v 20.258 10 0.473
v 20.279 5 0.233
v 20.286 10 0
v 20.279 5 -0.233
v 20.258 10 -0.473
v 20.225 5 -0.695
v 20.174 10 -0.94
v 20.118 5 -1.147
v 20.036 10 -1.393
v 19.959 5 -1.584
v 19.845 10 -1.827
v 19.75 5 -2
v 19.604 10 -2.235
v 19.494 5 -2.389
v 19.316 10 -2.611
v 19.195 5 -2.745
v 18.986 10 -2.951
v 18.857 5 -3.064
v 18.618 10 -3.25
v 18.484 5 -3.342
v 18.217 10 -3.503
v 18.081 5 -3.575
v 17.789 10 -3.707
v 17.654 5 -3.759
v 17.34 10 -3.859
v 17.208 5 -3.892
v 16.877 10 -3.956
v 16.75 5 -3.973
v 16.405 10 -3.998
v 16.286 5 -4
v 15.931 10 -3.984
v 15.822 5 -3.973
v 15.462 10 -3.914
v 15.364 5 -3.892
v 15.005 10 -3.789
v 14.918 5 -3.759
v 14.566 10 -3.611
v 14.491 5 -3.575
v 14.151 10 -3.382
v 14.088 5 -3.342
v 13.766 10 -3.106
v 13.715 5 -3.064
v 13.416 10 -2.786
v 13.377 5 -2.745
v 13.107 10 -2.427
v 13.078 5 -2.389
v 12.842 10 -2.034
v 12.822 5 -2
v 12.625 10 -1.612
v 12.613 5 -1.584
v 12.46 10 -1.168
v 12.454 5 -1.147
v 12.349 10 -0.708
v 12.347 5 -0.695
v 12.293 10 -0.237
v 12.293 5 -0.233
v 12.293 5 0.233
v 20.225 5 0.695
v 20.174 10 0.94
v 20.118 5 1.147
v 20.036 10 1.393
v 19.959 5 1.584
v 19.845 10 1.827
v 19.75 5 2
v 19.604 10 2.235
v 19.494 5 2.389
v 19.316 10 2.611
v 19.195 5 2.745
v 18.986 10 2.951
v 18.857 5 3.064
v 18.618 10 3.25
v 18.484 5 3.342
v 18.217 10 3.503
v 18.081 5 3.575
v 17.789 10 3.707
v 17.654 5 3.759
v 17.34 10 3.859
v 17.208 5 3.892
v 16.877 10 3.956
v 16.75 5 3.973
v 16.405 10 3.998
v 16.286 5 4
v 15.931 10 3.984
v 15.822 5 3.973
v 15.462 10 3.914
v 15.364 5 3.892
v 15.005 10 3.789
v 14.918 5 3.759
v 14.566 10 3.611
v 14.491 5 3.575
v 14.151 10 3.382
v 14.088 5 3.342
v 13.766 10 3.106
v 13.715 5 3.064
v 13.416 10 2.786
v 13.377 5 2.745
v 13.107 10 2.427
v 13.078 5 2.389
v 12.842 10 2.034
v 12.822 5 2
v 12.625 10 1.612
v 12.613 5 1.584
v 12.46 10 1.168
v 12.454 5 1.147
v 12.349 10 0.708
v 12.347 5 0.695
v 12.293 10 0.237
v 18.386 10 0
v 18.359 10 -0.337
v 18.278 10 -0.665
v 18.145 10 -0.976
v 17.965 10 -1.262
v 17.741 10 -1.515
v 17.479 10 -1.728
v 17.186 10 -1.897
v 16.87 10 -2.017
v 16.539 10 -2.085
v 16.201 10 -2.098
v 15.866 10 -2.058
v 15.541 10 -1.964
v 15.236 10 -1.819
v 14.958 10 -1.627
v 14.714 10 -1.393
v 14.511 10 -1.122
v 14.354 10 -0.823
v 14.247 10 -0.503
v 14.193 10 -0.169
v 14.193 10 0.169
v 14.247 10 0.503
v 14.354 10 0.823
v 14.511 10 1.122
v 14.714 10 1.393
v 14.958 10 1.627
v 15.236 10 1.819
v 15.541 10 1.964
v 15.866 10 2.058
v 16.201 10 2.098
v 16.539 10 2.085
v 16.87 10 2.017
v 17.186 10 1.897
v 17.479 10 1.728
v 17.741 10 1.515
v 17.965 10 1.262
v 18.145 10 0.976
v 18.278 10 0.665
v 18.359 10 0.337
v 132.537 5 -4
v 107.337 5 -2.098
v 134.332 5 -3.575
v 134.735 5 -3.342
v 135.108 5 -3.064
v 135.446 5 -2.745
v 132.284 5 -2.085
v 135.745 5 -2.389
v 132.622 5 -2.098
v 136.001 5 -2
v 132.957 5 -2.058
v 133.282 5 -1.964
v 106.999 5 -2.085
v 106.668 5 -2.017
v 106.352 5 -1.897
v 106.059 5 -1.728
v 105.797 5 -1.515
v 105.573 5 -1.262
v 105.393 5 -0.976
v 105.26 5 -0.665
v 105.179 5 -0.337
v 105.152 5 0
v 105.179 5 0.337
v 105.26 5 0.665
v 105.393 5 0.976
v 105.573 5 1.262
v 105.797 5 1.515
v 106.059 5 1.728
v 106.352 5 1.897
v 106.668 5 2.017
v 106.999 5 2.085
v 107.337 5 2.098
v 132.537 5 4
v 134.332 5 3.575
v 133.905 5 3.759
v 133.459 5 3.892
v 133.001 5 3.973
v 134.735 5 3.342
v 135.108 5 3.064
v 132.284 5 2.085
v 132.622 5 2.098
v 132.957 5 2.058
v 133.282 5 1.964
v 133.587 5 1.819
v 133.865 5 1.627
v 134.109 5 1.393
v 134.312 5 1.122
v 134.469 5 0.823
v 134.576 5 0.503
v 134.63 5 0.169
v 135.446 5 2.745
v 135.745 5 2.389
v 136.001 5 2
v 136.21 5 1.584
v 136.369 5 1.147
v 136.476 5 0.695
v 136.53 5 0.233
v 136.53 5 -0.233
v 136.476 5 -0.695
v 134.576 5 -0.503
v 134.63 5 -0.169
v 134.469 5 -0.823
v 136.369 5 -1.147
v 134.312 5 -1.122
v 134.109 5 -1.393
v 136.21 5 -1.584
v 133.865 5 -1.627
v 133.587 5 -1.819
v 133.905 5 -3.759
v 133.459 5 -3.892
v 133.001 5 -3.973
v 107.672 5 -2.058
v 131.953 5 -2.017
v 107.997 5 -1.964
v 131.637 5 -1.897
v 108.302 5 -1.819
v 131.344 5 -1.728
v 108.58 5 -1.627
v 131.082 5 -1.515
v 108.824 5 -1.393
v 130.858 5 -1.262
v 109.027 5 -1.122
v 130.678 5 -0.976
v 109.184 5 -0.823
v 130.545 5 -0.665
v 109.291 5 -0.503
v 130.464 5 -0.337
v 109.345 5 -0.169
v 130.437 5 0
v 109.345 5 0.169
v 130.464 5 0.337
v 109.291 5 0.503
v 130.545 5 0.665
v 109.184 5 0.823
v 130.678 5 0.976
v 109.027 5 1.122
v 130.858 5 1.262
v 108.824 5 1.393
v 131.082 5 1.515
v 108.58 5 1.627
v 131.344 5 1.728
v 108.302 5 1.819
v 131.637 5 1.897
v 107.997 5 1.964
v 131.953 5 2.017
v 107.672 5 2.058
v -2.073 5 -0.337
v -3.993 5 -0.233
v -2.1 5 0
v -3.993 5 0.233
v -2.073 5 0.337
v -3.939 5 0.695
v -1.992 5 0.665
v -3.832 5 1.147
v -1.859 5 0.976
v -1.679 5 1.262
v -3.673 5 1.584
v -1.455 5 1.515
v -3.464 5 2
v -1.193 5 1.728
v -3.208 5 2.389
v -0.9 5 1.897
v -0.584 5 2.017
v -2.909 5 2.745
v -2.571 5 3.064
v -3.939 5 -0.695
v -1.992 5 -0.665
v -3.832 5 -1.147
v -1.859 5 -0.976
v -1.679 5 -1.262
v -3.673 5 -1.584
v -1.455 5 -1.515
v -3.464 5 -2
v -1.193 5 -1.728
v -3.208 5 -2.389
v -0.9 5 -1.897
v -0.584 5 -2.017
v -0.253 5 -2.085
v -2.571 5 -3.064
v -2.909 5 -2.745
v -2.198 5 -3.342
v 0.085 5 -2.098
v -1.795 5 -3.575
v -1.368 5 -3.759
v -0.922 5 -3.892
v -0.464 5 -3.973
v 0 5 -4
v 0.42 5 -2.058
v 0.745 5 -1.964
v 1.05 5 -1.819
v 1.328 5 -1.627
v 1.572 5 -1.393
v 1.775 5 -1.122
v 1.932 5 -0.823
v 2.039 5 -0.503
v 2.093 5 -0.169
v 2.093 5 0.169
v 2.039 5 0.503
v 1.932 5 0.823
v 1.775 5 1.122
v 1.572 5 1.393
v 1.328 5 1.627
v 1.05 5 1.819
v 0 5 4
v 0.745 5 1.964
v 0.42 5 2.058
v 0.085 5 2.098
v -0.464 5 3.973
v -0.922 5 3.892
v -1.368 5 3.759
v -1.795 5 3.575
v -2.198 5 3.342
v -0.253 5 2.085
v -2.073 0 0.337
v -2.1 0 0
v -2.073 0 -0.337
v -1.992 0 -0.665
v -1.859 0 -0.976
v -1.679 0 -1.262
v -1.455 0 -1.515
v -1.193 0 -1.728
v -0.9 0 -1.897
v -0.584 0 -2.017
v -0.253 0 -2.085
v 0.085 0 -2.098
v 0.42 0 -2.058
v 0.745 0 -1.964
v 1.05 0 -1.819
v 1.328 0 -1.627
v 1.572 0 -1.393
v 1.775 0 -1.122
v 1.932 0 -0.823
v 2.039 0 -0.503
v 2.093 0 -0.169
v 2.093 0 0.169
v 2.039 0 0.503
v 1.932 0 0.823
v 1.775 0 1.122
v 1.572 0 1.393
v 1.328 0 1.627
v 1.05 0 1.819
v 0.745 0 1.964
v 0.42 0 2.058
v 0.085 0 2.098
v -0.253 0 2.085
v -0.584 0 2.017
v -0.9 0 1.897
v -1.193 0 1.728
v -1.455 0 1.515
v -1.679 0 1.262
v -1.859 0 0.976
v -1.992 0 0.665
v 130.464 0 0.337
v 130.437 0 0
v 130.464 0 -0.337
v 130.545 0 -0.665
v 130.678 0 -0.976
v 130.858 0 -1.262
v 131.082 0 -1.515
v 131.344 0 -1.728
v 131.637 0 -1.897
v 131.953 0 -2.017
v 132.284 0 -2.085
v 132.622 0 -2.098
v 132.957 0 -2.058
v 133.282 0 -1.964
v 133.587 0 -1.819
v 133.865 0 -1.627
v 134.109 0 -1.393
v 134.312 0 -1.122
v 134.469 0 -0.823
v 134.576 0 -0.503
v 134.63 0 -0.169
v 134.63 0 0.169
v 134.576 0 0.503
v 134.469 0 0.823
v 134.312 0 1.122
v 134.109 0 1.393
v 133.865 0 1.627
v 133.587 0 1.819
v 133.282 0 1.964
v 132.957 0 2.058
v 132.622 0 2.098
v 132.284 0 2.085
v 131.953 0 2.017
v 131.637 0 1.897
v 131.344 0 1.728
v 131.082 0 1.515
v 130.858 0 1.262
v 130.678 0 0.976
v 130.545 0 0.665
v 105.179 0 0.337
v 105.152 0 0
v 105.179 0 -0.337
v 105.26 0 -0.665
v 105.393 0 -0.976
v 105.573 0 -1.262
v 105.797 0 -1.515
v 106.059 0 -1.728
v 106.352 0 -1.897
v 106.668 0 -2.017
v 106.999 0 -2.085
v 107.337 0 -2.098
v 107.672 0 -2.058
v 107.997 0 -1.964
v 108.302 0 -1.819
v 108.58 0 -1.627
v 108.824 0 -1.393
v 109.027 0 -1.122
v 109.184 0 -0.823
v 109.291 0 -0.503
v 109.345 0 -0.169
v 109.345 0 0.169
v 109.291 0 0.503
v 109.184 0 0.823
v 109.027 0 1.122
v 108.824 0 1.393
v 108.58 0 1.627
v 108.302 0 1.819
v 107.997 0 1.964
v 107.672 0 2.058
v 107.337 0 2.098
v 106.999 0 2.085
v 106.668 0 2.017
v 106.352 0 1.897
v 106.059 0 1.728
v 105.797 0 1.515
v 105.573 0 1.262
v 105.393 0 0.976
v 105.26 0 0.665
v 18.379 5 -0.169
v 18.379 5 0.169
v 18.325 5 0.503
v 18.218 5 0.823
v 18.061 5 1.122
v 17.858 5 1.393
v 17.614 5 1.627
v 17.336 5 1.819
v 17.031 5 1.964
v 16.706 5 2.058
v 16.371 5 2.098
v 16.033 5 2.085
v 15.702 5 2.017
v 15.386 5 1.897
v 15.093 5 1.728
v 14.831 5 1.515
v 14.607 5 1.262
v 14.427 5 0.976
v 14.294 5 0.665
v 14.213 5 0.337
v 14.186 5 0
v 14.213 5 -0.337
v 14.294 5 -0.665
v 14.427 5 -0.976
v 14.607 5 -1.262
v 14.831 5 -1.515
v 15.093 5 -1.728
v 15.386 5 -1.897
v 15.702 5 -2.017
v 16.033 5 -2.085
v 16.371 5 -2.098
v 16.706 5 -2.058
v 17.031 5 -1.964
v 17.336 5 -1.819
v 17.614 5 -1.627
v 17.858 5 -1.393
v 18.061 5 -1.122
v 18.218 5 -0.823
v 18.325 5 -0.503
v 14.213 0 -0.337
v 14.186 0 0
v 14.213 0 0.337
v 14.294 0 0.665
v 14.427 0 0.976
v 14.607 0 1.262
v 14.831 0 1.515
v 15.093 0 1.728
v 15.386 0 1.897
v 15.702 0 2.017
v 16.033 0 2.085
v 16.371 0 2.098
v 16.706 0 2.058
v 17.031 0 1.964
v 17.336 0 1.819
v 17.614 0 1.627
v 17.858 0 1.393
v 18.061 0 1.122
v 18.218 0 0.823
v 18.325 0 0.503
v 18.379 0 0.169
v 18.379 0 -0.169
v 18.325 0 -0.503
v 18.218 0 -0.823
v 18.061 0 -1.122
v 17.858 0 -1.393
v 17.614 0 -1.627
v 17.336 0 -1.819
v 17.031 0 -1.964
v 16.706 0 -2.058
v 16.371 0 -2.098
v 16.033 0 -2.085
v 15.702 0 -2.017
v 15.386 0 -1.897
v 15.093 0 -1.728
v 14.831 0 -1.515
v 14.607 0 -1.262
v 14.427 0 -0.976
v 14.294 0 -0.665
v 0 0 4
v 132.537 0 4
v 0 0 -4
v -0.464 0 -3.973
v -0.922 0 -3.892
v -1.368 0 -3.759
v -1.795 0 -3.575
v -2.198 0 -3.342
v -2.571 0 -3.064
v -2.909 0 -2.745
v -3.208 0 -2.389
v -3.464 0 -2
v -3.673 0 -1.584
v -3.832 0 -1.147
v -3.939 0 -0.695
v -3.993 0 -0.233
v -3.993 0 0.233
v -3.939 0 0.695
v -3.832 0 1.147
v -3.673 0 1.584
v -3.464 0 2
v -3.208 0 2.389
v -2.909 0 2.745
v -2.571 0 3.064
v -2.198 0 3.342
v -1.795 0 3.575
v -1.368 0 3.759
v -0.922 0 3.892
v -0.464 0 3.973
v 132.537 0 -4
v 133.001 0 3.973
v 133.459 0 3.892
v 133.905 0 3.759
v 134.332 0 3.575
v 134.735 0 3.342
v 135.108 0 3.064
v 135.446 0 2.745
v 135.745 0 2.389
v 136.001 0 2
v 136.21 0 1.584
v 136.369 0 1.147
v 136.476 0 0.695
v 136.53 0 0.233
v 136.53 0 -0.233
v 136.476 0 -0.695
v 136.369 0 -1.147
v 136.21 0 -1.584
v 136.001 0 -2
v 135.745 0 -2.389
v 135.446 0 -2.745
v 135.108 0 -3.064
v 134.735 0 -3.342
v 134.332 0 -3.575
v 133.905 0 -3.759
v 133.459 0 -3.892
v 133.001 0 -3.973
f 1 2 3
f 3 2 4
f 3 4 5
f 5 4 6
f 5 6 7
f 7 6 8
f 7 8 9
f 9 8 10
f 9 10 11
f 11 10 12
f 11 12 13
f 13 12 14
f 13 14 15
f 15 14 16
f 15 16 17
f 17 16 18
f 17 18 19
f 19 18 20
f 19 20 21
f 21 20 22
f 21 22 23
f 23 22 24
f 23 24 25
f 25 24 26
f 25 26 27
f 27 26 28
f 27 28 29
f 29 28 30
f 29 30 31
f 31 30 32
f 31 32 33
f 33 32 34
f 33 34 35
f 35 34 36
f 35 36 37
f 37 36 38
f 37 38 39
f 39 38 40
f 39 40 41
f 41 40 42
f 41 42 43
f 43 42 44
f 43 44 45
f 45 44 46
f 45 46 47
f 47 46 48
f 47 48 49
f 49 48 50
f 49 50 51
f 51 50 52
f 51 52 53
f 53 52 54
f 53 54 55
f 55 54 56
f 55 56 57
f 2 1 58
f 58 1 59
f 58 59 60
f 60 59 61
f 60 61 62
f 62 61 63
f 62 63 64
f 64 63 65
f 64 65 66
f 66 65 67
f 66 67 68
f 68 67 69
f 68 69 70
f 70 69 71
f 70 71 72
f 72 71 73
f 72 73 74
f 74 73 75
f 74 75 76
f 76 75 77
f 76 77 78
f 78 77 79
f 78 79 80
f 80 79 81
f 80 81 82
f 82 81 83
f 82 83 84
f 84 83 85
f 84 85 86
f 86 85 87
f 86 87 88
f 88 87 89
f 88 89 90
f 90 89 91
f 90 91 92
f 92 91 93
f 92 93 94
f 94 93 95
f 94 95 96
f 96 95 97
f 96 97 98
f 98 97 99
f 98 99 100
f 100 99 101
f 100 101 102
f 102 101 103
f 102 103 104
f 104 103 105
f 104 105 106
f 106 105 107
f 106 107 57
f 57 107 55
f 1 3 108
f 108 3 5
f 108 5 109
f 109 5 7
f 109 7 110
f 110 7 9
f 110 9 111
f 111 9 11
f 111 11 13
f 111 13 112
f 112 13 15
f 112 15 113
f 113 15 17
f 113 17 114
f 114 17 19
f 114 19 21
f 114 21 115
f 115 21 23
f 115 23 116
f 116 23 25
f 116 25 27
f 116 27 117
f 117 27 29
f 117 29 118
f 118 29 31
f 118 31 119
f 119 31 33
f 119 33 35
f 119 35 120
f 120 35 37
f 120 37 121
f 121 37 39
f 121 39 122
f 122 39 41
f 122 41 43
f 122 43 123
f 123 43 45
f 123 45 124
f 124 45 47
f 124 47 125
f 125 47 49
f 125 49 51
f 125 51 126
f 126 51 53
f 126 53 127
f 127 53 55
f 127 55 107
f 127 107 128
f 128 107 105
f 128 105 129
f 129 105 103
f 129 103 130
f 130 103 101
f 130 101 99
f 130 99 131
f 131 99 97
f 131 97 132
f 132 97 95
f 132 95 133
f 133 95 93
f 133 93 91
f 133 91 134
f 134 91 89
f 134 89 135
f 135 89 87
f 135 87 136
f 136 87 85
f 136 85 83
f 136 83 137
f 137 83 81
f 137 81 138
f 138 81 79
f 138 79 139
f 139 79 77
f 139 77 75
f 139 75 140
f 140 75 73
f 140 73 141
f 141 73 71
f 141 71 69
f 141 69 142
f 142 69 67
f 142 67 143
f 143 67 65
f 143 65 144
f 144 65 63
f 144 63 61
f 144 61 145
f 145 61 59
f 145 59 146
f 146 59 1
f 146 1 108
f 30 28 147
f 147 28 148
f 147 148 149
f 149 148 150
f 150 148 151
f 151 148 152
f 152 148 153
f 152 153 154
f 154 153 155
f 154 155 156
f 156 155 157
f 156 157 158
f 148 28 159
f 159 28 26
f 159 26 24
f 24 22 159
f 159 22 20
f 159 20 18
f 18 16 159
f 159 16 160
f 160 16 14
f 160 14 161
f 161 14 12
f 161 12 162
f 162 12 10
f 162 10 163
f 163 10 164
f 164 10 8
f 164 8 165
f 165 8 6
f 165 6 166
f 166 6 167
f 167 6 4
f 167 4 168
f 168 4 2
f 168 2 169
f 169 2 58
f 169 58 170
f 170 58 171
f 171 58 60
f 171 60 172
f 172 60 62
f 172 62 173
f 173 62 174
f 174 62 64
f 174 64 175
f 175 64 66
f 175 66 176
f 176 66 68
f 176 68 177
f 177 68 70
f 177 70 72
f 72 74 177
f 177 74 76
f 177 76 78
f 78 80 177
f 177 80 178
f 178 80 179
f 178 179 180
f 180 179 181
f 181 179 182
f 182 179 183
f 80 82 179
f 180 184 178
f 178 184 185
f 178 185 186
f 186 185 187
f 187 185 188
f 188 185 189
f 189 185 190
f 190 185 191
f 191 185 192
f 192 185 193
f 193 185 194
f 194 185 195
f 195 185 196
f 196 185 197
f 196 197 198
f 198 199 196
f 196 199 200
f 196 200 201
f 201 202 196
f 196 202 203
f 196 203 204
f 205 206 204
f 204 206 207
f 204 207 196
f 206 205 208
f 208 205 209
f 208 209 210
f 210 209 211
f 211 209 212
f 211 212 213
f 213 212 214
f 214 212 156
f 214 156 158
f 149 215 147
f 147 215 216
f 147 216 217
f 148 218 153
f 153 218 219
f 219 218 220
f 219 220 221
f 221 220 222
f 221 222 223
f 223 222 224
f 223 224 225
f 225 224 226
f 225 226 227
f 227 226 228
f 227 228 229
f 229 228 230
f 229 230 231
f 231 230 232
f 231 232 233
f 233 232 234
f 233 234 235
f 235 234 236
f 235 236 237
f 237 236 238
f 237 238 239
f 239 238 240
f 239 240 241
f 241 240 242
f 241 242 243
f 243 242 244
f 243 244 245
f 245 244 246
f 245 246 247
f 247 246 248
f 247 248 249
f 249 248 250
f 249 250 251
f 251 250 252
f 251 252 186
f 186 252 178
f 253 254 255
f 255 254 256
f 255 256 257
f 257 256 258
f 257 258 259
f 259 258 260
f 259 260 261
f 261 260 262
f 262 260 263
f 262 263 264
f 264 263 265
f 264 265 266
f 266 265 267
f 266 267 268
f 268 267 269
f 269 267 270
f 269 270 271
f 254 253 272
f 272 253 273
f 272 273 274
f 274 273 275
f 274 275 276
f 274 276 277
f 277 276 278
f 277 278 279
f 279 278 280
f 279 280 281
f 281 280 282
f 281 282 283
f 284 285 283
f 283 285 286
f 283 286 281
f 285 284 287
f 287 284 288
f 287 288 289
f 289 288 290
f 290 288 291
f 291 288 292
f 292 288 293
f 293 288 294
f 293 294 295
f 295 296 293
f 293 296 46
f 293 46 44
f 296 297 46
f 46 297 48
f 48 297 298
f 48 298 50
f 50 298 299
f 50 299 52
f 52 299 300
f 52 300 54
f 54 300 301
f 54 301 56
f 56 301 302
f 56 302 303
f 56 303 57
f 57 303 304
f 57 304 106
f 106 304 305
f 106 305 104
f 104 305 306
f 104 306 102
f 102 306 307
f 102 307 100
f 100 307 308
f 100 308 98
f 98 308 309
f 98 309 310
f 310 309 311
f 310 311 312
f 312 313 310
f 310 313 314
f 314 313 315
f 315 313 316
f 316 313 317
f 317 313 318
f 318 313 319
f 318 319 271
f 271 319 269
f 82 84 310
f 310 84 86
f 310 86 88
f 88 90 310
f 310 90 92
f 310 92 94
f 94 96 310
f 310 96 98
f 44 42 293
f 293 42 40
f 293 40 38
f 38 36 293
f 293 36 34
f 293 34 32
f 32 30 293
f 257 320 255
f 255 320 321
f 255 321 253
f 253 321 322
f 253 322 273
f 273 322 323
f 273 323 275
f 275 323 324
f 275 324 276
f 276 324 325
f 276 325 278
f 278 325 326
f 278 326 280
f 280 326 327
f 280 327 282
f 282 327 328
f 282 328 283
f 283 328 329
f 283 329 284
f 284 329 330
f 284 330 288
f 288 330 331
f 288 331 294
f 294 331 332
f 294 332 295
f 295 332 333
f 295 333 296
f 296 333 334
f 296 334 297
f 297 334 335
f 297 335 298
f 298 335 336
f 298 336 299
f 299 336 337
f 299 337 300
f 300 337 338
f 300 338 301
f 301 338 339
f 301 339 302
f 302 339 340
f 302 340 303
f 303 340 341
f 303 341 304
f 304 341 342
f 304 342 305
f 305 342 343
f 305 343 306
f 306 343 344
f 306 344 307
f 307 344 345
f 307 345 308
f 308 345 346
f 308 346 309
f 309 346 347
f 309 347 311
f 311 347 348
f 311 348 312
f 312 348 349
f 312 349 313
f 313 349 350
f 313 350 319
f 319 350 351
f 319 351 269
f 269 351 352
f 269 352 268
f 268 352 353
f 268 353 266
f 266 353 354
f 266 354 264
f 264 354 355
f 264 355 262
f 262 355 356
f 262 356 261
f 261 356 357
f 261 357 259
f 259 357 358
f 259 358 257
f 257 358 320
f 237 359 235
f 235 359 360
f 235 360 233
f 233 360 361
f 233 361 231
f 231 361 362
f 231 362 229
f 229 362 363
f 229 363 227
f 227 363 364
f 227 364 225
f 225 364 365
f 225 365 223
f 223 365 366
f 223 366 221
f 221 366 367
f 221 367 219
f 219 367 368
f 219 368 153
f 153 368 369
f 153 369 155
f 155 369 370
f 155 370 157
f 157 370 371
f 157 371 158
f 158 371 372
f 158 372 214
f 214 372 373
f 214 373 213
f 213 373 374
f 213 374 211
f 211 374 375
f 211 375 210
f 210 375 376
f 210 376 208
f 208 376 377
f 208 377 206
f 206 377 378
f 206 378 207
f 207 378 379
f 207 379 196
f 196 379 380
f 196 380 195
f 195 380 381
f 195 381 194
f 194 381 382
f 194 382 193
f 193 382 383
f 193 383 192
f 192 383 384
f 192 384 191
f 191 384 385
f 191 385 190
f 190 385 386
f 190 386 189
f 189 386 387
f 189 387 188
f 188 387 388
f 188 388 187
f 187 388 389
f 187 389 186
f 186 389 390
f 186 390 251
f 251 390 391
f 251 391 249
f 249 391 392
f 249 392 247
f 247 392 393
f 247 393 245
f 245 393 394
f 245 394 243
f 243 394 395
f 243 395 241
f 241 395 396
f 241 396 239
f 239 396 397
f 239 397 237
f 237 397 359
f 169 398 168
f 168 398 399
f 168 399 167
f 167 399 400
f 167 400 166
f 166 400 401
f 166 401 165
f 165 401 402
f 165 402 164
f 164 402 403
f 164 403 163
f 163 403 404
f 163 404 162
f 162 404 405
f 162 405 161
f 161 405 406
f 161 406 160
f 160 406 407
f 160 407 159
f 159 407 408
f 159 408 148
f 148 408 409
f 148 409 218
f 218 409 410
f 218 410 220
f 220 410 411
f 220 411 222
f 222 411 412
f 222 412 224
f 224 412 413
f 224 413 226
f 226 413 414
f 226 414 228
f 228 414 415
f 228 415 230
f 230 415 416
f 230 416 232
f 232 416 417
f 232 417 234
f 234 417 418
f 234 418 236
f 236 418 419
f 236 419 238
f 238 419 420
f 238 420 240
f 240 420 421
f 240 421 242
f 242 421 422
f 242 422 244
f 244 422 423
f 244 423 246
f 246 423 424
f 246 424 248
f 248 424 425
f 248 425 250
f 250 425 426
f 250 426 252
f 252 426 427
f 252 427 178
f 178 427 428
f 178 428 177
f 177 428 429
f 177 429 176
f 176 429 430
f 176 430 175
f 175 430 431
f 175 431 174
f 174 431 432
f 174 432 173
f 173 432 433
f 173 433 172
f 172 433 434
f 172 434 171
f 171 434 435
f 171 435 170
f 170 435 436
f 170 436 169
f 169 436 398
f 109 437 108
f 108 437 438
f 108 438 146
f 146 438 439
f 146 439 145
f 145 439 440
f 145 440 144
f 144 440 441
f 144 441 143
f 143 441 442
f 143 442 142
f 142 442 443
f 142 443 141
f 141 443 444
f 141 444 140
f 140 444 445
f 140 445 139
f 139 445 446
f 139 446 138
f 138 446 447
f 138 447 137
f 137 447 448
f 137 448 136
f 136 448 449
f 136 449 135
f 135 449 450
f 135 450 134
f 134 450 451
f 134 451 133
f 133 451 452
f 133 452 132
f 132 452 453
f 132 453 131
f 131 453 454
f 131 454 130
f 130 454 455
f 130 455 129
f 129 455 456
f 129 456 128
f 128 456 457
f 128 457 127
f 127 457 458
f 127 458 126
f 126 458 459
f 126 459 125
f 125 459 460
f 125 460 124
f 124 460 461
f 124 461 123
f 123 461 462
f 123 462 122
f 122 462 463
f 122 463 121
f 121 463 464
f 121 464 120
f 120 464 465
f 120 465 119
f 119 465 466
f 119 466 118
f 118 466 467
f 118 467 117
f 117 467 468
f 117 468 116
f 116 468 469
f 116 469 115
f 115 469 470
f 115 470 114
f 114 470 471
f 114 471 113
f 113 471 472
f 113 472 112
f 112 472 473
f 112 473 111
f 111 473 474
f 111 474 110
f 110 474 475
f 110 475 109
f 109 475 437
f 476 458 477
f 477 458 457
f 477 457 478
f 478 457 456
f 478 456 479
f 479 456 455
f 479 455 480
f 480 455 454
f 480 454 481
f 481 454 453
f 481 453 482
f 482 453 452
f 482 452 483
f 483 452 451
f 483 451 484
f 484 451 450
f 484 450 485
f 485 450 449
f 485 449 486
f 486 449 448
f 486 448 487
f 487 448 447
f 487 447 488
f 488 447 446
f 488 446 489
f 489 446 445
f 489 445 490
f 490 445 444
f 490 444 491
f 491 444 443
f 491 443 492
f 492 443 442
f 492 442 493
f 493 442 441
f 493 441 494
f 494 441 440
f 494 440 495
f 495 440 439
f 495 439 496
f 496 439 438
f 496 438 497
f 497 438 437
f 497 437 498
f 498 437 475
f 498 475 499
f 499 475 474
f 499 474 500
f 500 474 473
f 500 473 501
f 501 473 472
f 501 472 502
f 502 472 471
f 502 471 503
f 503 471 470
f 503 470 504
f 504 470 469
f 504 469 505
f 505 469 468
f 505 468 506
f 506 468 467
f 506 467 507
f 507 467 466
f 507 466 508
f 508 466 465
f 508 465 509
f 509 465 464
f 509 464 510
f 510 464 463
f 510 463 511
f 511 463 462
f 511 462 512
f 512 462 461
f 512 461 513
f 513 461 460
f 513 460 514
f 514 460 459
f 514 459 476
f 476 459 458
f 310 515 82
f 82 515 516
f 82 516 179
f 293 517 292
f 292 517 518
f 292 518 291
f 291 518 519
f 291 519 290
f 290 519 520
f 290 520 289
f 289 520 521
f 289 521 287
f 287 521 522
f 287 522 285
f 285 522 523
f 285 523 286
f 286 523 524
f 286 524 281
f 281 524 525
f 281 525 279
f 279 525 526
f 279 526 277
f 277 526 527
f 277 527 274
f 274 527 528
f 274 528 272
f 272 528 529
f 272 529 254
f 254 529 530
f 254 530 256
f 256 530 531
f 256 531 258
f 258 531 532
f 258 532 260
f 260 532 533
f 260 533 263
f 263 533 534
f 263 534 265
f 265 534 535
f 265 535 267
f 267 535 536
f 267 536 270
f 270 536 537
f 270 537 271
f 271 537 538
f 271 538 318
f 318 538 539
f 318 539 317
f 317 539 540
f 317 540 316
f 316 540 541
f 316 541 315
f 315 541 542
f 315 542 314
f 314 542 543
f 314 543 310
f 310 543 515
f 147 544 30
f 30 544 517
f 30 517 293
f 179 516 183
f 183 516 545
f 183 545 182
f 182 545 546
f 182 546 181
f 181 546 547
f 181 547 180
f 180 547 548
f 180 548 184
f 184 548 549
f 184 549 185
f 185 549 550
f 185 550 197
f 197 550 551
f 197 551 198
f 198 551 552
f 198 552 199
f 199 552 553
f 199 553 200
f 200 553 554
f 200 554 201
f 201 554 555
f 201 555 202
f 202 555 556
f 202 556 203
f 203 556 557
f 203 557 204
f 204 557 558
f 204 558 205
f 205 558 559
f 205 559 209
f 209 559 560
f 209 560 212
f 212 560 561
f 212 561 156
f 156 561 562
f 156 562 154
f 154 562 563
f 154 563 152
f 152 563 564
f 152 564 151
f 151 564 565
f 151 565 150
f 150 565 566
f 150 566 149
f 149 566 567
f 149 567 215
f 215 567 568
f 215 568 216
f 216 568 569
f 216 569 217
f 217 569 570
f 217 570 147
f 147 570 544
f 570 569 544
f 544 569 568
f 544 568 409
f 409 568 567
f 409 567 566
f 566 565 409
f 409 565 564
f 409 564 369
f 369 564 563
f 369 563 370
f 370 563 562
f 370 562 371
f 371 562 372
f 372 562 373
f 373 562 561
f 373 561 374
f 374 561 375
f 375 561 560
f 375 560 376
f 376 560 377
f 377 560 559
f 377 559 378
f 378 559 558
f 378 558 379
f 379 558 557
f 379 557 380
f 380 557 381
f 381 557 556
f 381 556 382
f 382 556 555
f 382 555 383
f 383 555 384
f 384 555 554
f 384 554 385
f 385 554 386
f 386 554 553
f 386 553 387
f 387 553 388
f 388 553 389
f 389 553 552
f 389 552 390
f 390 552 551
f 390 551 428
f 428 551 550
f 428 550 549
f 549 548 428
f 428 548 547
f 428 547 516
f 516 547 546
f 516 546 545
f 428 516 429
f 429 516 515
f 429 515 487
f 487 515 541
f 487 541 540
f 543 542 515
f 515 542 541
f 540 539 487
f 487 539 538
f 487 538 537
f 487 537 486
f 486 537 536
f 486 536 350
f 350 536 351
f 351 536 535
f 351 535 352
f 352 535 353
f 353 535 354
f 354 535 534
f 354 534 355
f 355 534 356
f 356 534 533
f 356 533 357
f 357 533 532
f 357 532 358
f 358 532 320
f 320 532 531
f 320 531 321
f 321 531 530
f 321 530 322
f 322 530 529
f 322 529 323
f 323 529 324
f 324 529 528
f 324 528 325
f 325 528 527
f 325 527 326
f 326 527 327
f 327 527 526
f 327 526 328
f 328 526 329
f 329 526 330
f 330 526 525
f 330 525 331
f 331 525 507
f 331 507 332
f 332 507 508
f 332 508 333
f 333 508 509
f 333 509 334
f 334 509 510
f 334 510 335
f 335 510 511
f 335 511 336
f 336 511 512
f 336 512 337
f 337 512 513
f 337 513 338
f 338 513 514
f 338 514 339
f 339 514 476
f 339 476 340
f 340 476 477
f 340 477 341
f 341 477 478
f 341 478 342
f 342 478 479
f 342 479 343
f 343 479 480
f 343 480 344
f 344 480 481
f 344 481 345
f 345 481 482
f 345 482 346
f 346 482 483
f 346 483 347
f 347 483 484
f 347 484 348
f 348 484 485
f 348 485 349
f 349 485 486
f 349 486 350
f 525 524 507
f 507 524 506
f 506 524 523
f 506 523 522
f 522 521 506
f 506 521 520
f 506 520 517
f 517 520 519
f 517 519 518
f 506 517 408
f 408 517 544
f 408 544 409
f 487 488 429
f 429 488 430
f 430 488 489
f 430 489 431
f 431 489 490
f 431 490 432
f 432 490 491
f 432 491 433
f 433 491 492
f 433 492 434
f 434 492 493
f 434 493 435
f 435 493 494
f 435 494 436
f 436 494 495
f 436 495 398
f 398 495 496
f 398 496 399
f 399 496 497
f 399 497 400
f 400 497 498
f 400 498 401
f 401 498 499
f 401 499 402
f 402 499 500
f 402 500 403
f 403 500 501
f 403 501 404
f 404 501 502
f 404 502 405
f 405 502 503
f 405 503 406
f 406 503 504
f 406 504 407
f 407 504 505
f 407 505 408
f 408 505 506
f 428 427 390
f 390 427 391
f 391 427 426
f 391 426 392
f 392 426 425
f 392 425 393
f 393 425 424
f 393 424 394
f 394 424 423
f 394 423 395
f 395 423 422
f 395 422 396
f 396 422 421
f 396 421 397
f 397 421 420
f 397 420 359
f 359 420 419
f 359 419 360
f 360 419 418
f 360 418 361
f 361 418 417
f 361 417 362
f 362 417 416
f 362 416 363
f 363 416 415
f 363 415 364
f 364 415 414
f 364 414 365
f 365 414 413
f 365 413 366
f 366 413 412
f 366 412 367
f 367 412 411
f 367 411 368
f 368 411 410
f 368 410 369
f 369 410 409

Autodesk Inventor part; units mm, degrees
ref_plane "YZ Plane" through (0, 0, 0) normal (1, 0, 0) x (0, 1, 0)
ref_plane "XZ Plane" through (0, 0, 0) normal (0, 1, 0) x (-1, 0, 0)
ref_plane "XY Plane" through (0, 0, 0) normal (0, 0, 1) x (1, 0, 0)
sketch "Sketch1" plane through (0, 0, 0) normal (0, 1, 0) x (-1, 0, 0)
  line L0 (0, 0) -> (-132.537, 0) construction
  line L1 (0, 4) -> (-132.537, 4)
  line L2 (-132.537, -4) -> (0, -4)
  arc A0 (0, -4) -> (0, 4) centre (0, 0) ccw
  arc A1 (-132.537, 4) -> (-132.537, -4) centre (-132.537, 0) ccw
  circle A2 centre (0, 0) radius 2.1
  circle A3 centre (-16.286, 0) radius 2.1
  circle A4 centre (-132.537, 0) radius 2.1
  circle A5 centre (-107.252, 0) radius 2.1
  point P0 (-66.2685, 0)
  point P1 (-52.7225, 0)
  dimension "d0" = 132.537
  dimension "d1" = 8
  dimension "d2" = 4.2
  dimension "d8" = 4.2
  dimension "d9" = 16.286
  dimension "d10" = 4.2
  dimension "d28" = 4.2
  dimension "d29" = 107.252
extrude "Extrusion1" add sketch "Sketch1" along normal blind 5
sketch "Sketch4" plane through (0, 5, 0) normal (0, 1, 0) x (1, 0, 0)
  arc A0 (132.537, -4) -> (132.537, 4) centre (132.537, 0) ccw projected
  line L0 (132.537, 4) -> (0, 4) projected
  arc A1 (0, 4) -> (0, -4) centre (0, 0) ccw projected
  line L1 (0, -4) -> (132.537, -4) projected
  circle A2 centre (16.286, 0) radius 2.1 projected
  circle A3 centre (107.252, 0) radius 2.1 projected
  circle A4 centre (132.537, 0) radius 2.1 projected
  circle A5 centre (0, 0) radius 2.1 projected
  circle A6 centre (16.286, 0) radius 4
  dimension "d30" = 8
extrude "Extrusion7" add sketch "Sketch4" along normal blind 5 contours A6
